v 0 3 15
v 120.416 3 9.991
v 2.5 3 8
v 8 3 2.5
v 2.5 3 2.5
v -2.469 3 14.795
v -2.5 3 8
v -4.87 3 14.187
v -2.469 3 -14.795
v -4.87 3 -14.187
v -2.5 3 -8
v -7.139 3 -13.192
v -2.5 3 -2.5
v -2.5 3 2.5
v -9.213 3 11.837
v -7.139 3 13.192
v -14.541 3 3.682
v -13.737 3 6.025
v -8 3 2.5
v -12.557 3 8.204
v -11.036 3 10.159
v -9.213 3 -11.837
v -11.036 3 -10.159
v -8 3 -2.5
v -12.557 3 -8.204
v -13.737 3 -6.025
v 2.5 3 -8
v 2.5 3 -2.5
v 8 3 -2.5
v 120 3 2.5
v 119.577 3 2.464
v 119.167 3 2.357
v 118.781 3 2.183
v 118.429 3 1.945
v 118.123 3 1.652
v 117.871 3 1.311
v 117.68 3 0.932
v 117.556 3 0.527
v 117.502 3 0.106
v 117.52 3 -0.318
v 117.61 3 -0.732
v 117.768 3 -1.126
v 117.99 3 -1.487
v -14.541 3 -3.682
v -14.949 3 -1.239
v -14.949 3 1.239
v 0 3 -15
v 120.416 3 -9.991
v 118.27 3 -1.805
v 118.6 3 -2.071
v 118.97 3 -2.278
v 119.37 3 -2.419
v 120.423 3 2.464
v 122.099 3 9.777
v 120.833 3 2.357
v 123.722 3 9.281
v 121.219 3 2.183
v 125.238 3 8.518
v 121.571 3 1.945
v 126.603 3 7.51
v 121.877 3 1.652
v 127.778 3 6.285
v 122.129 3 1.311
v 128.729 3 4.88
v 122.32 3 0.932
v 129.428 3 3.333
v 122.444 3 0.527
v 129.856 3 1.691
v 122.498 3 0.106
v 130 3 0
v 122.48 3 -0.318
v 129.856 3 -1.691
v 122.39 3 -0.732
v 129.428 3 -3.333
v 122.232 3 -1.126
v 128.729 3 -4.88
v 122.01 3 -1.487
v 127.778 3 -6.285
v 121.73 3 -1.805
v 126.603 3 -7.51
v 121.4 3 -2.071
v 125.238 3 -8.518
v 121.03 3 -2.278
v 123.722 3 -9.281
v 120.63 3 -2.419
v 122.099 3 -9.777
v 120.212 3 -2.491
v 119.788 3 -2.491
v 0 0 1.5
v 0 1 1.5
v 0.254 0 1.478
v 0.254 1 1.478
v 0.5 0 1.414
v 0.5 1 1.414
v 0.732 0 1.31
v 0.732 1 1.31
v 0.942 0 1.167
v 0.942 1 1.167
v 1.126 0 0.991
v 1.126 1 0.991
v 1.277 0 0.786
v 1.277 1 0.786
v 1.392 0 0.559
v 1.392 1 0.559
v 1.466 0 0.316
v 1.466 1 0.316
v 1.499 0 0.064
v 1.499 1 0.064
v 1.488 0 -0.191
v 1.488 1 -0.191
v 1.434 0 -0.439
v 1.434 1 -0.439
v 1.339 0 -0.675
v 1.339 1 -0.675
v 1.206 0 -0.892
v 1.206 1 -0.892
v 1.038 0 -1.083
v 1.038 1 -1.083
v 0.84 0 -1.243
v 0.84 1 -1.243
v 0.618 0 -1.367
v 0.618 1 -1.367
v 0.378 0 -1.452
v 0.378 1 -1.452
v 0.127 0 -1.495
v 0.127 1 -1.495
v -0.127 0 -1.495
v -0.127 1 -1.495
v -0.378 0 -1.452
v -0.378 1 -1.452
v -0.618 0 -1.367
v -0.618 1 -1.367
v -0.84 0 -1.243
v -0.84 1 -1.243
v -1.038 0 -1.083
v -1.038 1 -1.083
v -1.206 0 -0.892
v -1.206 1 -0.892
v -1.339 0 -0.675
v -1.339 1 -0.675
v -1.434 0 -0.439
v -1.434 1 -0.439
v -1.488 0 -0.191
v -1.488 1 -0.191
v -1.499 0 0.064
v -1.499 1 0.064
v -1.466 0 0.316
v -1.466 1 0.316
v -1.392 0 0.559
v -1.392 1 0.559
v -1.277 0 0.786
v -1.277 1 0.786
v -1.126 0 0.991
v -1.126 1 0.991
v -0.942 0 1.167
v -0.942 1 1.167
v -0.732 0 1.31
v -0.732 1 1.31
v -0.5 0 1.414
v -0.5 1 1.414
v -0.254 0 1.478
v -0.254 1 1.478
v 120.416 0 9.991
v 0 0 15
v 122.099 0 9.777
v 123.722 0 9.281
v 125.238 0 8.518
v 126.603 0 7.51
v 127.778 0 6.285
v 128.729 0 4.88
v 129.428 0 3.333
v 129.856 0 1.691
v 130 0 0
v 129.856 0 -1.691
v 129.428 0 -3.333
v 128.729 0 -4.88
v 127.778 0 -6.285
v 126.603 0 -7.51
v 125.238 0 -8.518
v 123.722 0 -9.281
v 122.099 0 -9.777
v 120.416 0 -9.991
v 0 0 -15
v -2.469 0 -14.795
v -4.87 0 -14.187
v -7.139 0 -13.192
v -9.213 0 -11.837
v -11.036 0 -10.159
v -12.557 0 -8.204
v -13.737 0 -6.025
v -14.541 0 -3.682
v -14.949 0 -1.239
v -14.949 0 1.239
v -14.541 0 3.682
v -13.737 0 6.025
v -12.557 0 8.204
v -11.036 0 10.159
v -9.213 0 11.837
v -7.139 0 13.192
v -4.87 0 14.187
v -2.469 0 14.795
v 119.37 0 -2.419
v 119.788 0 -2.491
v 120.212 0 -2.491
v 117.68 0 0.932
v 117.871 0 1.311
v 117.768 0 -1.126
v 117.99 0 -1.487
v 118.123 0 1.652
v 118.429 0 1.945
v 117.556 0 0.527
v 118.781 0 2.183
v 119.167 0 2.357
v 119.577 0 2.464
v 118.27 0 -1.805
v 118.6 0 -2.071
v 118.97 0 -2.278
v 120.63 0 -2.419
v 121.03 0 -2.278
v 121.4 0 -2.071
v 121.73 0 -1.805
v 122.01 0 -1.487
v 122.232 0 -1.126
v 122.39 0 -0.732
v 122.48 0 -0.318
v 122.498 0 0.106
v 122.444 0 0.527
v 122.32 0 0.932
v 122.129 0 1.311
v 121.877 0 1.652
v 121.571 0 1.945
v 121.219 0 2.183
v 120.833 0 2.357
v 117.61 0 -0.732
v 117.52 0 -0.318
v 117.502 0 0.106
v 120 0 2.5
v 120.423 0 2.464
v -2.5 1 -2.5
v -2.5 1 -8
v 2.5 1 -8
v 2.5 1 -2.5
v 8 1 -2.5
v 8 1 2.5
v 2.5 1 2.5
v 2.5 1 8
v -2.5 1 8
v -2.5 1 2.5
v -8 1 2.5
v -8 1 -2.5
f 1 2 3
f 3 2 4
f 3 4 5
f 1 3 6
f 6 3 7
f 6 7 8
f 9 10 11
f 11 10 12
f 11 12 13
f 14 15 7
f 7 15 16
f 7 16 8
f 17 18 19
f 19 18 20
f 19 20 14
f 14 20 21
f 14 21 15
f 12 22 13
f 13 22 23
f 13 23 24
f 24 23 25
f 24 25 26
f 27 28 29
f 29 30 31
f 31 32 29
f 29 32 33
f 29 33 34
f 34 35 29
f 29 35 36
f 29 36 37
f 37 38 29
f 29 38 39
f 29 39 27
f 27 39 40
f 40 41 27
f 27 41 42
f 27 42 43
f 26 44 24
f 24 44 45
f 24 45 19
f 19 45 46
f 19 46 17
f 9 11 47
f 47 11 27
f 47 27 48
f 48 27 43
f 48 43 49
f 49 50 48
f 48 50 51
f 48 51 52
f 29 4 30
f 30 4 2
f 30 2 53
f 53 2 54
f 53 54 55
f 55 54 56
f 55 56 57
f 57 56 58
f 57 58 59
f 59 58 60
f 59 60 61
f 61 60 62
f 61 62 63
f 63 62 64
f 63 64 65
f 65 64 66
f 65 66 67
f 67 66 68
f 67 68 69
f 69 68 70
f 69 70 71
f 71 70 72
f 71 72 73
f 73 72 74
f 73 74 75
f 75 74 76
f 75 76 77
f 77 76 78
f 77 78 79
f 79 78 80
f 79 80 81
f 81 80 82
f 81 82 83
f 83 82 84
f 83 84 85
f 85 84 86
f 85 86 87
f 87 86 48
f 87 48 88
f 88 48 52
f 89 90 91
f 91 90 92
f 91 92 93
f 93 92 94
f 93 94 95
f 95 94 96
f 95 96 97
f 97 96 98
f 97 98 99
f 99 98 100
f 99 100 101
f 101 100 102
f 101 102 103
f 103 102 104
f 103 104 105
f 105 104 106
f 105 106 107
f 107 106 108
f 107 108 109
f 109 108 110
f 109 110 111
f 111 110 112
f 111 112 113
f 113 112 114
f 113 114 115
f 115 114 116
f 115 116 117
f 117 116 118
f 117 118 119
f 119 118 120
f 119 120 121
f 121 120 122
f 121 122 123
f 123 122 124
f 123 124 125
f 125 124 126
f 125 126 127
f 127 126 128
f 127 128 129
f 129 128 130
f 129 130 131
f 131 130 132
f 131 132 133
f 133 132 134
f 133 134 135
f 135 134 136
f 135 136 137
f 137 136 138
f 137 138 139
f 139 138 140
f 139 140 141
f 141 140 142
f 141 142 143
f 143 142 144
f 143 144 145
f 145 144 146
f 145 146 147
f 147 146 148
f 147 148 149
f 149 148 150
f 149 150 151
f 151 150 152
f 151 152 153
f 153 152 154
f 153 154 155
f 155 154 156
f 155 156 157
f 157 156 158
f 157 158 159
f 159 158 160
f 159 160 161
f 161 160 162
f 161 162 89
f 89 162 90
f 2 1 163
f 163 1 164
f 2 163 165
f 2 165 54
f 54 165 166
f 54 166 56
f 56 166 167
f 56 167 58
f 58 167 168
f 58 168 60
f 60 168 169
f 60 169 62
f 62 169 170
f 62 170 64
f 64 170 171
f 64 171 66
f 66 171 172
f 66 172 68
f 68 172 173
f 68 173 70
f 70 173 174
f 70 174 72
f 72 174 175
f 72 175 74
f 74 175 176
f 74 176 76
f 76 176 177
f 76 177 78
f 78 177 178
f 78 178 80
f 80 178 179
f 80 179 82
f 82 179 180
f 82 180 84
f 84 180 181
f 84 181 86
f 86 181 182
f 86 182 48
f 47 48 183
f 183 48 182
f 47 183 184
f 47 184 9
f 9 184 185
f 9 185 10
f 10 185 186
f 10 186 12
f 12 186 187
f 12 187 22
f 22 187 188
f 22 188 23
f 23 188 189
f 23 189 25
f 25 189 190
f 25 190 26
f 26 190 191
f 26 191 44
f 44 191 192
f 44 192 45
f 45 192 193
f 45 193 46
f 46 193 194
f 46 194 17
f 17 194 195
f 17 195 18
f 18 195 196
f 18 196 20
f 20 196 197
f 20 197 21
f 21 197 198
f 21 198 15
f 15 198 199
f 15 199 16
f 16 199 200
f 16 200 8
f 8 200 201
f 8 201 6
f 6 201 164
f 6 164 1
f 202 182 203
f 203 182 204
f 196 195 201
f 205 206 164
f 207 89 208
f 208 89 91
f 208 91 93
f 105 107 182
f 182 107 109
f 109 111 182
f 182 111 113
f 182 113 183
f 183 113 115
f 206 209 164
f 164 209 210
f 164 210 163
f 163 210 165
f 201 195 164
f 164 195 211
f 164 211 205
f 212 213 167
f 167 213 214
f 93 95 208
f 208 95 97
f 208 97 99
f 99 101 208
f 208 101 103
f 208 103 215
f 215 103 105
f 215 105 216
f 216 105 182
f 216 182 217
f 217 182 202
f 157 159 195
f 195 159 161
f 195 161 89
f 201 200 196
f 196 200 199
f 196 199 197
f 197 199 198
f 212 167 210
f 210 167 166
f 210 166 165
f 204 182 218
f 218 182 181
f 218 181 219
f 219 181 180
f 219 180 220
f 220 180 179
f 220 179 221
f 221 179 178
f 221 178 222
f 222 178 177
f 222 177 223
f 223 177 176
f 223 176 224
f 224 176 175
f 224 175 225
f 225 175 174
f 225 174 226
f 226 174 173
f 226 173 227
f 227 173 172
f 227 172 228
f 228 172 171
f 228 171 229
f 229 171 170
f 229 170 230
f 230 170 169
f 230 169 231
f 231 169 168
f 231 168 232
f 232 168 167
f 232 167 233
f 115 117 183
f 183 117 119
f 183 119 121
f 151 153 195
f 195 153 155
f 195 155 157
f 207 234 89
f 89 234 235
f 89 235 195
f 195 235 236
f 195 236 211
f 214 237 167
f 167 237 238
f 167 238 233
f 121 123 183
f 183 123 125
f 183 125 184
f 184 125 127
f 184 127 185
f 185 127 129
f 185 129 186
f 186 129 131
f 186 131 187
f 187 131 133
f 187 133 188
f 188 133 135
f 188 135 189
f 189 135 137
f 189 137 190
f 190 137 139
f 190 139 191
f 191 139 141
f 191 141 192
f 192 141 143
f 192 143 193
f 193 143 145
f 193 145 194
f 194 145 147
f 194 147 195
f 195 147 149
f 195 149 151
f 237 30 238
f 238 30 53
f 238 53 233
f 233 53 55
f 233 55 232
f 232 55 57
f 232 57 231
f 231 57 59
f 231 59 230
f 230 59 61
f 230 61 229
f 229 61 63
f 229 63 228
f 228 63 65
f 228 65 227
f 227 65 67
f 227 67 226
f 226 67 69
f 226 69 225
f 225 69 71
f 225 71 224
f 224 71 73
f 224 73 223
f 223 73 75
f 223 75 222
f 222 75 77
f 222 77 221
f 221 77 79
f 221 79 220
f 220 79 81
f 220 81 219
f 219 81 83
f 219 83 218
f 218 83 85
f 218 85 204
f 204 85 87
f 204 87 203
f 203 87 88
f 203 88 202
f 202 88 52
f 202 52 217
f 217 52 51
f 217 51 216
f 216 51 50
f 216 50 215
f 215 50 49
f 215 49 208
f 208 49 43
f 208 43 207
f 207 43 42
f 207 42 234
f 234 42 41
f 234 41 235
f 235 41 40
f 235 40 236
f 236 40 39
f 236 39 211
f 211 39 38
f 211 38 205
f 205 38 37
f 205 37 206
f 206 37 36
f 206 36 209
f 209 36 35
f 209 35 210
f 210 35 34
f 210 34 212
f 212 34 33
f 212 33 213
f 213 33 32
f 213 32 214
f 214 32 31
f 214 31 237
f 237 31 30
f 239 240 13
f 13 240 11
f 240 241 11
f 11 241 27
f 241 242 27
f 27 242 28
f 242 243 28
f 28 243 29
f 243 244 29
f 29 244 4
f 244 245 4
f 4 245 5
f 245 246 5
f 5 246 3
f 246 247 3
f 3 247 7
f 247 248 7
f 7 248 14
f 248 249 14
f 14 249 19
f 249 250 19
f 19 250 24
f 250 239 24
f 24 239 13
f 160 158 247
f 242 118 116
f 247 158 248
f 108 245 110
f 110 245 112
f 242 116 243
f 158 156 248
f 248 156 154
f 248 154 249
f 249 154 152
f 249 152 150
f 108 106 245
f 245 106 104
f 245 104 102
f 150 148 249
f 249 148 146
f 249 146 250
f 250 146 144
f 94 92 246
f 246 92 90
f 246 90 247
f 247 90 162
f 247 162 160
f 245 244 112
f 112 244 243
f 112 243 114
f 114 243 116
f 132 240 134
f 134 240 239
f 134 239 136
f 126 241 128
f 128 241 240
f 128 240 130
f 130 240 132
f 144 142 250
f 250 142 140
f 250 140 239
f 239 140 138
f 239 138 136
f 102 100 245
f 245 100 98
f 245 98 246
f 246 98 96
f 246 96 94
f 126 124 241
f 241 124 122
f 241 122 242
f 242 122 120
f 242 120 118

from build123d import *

# Parameters (mm, degrees)
SKETCH_1_R          = 5
EXTRUDE_1_DEPTH     = 3
SKETCH_2_R          = 2.5
CUT_EXTRUDE_1_DEPTH = 131.896905999
EXTRUDE_START       = -3
SKETCH_3_R          = 5
EXTRUDE_2_DEPTH     = 3
SKETCH_4_R          = 1.5
CUT_EXTRUDE_2_DEPTH = 3
SKETCH_5_W          = 5
SKETCH_5_H          = 5.5
SKETCH_5_W_2        = 5.5
SKETCH_5_H_2        = 5
SKETCH_5_R          = 1.5
CUT_EXTRUDE_3_DEPTH = 2


with BuildPart() as part:
    # 草图1 → 凸台-拉伸1 (new body)
    with BuildSketch(Plane(origin=(0, 0, 0), x_dir=(1, 0, 0), z_dir=(0, 1, 0))):
        with BuildLine():
            Line((0, -15), (120.415586748, -9.991360651))
            ThreePointArc((120.415586748, -9.991360651), (130, 0), (120.415586748, 9.991360651))
            Line((120.415586748, 9.991360651), (0, 15))
            ThreePointArc((0, 15), (-15, 0), (0, -15))
        make_face()
        with Locations(Location((0, 0, 0), (0, 0, 270))):
            Circle(SKETCH_1_R, mode=Mode.SUBTRACT)
    extrude(amount=EXTRUDE_1_DEPTH)

    # 草图2 → 切除-拉伸1 (cut, through all)
    with BuildSketch(Plane(origin=(0, 3, 0), x_dir=(1, 0, 0), z_dir=(0, 1, 0))):
        with Locations(Location((120, 0, 0), (0, 0, 270))):
            Circle(SKETCH_2_R)
    extrude(amount=-CUT_EXTRUDE_1_DEPTH, mode=Mode.SUBTRACT)

    # 草图3 → 凸台-拉伸2 (add)
    with BuildSketch(Plane(origin=(0, 3, 0), x_dir=(1, 0, 0), z_dir=(0, 1, 0)).offset(EXTRUDE_START)):
        Circle(SKETCH_3_R)
    extrude(amount=EXTRUDE_2_DEPTH)

    # 草图4 → 切除-拉伸2 (cut)
    with BuildSketch(Plane(origin=(0, 3, 0), x_dir=(1, 0, 0), z_dir=(0, 1, 0))):
        with Locations(Location((0, 0, 0), (0, 0, 270))):
            Circle(SKETCH_4_R)
    extrude(amount=-CUT_EXTRUDE_2_DEPTH, mode=Mode.SUBTRACT)

    # 草图5 → 切除-拉伸3 (cut)
    # profile 1 of 5: a face of its own
    with BuildSketch(Plane(origin=(0, 3, 0), x_dir=(1, 0, 0), z_dir=(0, 1, 0))):
        with Locations((0, 5.25)):
            Rectangle(SKETCH_5_W, SKETCH_5_H)
    # profile 2 of 5: a face of its own
    with BuildSketch(Plane(origin=(0, 3, 0), x_dir=(1, 0, 0), z_dir=(0, 1, 0))):
        with Locations((-5.25, 0)):
            Rectangle(SKETCH_5_W_2, SKETCH_5_H_2)
    # profile 3 of 5: a face of its own
    with BuildSketch(Plane(origin=(0, 3, 0), x_dir=(1, 0, 0), z_dir=(0, 1, 0))):
        with Locations((0, -5.25)):
            Rectangle(SKETCH_5_W, SKETCH_5_H)
    # profile 4 of 5: a face of its own
    with BuildSketch(Plane(origin=(0, 3, 0), x_dir=(1, 0, 0), z_dir=(0, 1, 0))):
        with Locations((5.25, 0)):
            Rectangle(SKETCH_5_W_2, SKETCH_5_H_2)
    # profile 5 of 5: a face of its own
    with BuildSketch(Plane(origin=(0, 3, 0), x_dir=(1, 0, 0), z_dir=(0, 1, 0))):
        Rectangle(SKETCH_5_W, SKETCH_5_H_2)
        with Locations(Location((0, 0, 0), (0, 0, 270))):
            Circle(SKETCH_5_R, mode=Mode.SUBTRACT)
    extrude(amount=-CUT_EXTRUDE_3_DEPTH, mode=Mode.SUBTRACT)


solid = part.part
